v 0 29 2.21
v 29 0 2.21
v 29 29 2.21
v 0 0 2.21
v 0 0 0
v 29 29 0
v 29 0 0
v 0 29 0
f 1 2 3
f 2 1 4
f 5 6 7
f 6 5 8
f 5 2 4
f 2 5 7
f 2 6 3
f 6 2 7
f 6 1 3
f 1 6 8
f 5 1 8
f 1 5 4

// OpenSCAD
/* Warning, this is a very basic generator with a lot of approximation 
input data : [BGA, AUC, 29x29x2.21mm, 780, , A, C04-25172A]
generated by com.zoubworld.electronics.cad.model3d.Basic
Date : Sun Feb 15 10:50:49 CET 2026
*/

//body
color("black")
translate([0,0,0])
cube([29.0,29.0,2.21], center=false);
